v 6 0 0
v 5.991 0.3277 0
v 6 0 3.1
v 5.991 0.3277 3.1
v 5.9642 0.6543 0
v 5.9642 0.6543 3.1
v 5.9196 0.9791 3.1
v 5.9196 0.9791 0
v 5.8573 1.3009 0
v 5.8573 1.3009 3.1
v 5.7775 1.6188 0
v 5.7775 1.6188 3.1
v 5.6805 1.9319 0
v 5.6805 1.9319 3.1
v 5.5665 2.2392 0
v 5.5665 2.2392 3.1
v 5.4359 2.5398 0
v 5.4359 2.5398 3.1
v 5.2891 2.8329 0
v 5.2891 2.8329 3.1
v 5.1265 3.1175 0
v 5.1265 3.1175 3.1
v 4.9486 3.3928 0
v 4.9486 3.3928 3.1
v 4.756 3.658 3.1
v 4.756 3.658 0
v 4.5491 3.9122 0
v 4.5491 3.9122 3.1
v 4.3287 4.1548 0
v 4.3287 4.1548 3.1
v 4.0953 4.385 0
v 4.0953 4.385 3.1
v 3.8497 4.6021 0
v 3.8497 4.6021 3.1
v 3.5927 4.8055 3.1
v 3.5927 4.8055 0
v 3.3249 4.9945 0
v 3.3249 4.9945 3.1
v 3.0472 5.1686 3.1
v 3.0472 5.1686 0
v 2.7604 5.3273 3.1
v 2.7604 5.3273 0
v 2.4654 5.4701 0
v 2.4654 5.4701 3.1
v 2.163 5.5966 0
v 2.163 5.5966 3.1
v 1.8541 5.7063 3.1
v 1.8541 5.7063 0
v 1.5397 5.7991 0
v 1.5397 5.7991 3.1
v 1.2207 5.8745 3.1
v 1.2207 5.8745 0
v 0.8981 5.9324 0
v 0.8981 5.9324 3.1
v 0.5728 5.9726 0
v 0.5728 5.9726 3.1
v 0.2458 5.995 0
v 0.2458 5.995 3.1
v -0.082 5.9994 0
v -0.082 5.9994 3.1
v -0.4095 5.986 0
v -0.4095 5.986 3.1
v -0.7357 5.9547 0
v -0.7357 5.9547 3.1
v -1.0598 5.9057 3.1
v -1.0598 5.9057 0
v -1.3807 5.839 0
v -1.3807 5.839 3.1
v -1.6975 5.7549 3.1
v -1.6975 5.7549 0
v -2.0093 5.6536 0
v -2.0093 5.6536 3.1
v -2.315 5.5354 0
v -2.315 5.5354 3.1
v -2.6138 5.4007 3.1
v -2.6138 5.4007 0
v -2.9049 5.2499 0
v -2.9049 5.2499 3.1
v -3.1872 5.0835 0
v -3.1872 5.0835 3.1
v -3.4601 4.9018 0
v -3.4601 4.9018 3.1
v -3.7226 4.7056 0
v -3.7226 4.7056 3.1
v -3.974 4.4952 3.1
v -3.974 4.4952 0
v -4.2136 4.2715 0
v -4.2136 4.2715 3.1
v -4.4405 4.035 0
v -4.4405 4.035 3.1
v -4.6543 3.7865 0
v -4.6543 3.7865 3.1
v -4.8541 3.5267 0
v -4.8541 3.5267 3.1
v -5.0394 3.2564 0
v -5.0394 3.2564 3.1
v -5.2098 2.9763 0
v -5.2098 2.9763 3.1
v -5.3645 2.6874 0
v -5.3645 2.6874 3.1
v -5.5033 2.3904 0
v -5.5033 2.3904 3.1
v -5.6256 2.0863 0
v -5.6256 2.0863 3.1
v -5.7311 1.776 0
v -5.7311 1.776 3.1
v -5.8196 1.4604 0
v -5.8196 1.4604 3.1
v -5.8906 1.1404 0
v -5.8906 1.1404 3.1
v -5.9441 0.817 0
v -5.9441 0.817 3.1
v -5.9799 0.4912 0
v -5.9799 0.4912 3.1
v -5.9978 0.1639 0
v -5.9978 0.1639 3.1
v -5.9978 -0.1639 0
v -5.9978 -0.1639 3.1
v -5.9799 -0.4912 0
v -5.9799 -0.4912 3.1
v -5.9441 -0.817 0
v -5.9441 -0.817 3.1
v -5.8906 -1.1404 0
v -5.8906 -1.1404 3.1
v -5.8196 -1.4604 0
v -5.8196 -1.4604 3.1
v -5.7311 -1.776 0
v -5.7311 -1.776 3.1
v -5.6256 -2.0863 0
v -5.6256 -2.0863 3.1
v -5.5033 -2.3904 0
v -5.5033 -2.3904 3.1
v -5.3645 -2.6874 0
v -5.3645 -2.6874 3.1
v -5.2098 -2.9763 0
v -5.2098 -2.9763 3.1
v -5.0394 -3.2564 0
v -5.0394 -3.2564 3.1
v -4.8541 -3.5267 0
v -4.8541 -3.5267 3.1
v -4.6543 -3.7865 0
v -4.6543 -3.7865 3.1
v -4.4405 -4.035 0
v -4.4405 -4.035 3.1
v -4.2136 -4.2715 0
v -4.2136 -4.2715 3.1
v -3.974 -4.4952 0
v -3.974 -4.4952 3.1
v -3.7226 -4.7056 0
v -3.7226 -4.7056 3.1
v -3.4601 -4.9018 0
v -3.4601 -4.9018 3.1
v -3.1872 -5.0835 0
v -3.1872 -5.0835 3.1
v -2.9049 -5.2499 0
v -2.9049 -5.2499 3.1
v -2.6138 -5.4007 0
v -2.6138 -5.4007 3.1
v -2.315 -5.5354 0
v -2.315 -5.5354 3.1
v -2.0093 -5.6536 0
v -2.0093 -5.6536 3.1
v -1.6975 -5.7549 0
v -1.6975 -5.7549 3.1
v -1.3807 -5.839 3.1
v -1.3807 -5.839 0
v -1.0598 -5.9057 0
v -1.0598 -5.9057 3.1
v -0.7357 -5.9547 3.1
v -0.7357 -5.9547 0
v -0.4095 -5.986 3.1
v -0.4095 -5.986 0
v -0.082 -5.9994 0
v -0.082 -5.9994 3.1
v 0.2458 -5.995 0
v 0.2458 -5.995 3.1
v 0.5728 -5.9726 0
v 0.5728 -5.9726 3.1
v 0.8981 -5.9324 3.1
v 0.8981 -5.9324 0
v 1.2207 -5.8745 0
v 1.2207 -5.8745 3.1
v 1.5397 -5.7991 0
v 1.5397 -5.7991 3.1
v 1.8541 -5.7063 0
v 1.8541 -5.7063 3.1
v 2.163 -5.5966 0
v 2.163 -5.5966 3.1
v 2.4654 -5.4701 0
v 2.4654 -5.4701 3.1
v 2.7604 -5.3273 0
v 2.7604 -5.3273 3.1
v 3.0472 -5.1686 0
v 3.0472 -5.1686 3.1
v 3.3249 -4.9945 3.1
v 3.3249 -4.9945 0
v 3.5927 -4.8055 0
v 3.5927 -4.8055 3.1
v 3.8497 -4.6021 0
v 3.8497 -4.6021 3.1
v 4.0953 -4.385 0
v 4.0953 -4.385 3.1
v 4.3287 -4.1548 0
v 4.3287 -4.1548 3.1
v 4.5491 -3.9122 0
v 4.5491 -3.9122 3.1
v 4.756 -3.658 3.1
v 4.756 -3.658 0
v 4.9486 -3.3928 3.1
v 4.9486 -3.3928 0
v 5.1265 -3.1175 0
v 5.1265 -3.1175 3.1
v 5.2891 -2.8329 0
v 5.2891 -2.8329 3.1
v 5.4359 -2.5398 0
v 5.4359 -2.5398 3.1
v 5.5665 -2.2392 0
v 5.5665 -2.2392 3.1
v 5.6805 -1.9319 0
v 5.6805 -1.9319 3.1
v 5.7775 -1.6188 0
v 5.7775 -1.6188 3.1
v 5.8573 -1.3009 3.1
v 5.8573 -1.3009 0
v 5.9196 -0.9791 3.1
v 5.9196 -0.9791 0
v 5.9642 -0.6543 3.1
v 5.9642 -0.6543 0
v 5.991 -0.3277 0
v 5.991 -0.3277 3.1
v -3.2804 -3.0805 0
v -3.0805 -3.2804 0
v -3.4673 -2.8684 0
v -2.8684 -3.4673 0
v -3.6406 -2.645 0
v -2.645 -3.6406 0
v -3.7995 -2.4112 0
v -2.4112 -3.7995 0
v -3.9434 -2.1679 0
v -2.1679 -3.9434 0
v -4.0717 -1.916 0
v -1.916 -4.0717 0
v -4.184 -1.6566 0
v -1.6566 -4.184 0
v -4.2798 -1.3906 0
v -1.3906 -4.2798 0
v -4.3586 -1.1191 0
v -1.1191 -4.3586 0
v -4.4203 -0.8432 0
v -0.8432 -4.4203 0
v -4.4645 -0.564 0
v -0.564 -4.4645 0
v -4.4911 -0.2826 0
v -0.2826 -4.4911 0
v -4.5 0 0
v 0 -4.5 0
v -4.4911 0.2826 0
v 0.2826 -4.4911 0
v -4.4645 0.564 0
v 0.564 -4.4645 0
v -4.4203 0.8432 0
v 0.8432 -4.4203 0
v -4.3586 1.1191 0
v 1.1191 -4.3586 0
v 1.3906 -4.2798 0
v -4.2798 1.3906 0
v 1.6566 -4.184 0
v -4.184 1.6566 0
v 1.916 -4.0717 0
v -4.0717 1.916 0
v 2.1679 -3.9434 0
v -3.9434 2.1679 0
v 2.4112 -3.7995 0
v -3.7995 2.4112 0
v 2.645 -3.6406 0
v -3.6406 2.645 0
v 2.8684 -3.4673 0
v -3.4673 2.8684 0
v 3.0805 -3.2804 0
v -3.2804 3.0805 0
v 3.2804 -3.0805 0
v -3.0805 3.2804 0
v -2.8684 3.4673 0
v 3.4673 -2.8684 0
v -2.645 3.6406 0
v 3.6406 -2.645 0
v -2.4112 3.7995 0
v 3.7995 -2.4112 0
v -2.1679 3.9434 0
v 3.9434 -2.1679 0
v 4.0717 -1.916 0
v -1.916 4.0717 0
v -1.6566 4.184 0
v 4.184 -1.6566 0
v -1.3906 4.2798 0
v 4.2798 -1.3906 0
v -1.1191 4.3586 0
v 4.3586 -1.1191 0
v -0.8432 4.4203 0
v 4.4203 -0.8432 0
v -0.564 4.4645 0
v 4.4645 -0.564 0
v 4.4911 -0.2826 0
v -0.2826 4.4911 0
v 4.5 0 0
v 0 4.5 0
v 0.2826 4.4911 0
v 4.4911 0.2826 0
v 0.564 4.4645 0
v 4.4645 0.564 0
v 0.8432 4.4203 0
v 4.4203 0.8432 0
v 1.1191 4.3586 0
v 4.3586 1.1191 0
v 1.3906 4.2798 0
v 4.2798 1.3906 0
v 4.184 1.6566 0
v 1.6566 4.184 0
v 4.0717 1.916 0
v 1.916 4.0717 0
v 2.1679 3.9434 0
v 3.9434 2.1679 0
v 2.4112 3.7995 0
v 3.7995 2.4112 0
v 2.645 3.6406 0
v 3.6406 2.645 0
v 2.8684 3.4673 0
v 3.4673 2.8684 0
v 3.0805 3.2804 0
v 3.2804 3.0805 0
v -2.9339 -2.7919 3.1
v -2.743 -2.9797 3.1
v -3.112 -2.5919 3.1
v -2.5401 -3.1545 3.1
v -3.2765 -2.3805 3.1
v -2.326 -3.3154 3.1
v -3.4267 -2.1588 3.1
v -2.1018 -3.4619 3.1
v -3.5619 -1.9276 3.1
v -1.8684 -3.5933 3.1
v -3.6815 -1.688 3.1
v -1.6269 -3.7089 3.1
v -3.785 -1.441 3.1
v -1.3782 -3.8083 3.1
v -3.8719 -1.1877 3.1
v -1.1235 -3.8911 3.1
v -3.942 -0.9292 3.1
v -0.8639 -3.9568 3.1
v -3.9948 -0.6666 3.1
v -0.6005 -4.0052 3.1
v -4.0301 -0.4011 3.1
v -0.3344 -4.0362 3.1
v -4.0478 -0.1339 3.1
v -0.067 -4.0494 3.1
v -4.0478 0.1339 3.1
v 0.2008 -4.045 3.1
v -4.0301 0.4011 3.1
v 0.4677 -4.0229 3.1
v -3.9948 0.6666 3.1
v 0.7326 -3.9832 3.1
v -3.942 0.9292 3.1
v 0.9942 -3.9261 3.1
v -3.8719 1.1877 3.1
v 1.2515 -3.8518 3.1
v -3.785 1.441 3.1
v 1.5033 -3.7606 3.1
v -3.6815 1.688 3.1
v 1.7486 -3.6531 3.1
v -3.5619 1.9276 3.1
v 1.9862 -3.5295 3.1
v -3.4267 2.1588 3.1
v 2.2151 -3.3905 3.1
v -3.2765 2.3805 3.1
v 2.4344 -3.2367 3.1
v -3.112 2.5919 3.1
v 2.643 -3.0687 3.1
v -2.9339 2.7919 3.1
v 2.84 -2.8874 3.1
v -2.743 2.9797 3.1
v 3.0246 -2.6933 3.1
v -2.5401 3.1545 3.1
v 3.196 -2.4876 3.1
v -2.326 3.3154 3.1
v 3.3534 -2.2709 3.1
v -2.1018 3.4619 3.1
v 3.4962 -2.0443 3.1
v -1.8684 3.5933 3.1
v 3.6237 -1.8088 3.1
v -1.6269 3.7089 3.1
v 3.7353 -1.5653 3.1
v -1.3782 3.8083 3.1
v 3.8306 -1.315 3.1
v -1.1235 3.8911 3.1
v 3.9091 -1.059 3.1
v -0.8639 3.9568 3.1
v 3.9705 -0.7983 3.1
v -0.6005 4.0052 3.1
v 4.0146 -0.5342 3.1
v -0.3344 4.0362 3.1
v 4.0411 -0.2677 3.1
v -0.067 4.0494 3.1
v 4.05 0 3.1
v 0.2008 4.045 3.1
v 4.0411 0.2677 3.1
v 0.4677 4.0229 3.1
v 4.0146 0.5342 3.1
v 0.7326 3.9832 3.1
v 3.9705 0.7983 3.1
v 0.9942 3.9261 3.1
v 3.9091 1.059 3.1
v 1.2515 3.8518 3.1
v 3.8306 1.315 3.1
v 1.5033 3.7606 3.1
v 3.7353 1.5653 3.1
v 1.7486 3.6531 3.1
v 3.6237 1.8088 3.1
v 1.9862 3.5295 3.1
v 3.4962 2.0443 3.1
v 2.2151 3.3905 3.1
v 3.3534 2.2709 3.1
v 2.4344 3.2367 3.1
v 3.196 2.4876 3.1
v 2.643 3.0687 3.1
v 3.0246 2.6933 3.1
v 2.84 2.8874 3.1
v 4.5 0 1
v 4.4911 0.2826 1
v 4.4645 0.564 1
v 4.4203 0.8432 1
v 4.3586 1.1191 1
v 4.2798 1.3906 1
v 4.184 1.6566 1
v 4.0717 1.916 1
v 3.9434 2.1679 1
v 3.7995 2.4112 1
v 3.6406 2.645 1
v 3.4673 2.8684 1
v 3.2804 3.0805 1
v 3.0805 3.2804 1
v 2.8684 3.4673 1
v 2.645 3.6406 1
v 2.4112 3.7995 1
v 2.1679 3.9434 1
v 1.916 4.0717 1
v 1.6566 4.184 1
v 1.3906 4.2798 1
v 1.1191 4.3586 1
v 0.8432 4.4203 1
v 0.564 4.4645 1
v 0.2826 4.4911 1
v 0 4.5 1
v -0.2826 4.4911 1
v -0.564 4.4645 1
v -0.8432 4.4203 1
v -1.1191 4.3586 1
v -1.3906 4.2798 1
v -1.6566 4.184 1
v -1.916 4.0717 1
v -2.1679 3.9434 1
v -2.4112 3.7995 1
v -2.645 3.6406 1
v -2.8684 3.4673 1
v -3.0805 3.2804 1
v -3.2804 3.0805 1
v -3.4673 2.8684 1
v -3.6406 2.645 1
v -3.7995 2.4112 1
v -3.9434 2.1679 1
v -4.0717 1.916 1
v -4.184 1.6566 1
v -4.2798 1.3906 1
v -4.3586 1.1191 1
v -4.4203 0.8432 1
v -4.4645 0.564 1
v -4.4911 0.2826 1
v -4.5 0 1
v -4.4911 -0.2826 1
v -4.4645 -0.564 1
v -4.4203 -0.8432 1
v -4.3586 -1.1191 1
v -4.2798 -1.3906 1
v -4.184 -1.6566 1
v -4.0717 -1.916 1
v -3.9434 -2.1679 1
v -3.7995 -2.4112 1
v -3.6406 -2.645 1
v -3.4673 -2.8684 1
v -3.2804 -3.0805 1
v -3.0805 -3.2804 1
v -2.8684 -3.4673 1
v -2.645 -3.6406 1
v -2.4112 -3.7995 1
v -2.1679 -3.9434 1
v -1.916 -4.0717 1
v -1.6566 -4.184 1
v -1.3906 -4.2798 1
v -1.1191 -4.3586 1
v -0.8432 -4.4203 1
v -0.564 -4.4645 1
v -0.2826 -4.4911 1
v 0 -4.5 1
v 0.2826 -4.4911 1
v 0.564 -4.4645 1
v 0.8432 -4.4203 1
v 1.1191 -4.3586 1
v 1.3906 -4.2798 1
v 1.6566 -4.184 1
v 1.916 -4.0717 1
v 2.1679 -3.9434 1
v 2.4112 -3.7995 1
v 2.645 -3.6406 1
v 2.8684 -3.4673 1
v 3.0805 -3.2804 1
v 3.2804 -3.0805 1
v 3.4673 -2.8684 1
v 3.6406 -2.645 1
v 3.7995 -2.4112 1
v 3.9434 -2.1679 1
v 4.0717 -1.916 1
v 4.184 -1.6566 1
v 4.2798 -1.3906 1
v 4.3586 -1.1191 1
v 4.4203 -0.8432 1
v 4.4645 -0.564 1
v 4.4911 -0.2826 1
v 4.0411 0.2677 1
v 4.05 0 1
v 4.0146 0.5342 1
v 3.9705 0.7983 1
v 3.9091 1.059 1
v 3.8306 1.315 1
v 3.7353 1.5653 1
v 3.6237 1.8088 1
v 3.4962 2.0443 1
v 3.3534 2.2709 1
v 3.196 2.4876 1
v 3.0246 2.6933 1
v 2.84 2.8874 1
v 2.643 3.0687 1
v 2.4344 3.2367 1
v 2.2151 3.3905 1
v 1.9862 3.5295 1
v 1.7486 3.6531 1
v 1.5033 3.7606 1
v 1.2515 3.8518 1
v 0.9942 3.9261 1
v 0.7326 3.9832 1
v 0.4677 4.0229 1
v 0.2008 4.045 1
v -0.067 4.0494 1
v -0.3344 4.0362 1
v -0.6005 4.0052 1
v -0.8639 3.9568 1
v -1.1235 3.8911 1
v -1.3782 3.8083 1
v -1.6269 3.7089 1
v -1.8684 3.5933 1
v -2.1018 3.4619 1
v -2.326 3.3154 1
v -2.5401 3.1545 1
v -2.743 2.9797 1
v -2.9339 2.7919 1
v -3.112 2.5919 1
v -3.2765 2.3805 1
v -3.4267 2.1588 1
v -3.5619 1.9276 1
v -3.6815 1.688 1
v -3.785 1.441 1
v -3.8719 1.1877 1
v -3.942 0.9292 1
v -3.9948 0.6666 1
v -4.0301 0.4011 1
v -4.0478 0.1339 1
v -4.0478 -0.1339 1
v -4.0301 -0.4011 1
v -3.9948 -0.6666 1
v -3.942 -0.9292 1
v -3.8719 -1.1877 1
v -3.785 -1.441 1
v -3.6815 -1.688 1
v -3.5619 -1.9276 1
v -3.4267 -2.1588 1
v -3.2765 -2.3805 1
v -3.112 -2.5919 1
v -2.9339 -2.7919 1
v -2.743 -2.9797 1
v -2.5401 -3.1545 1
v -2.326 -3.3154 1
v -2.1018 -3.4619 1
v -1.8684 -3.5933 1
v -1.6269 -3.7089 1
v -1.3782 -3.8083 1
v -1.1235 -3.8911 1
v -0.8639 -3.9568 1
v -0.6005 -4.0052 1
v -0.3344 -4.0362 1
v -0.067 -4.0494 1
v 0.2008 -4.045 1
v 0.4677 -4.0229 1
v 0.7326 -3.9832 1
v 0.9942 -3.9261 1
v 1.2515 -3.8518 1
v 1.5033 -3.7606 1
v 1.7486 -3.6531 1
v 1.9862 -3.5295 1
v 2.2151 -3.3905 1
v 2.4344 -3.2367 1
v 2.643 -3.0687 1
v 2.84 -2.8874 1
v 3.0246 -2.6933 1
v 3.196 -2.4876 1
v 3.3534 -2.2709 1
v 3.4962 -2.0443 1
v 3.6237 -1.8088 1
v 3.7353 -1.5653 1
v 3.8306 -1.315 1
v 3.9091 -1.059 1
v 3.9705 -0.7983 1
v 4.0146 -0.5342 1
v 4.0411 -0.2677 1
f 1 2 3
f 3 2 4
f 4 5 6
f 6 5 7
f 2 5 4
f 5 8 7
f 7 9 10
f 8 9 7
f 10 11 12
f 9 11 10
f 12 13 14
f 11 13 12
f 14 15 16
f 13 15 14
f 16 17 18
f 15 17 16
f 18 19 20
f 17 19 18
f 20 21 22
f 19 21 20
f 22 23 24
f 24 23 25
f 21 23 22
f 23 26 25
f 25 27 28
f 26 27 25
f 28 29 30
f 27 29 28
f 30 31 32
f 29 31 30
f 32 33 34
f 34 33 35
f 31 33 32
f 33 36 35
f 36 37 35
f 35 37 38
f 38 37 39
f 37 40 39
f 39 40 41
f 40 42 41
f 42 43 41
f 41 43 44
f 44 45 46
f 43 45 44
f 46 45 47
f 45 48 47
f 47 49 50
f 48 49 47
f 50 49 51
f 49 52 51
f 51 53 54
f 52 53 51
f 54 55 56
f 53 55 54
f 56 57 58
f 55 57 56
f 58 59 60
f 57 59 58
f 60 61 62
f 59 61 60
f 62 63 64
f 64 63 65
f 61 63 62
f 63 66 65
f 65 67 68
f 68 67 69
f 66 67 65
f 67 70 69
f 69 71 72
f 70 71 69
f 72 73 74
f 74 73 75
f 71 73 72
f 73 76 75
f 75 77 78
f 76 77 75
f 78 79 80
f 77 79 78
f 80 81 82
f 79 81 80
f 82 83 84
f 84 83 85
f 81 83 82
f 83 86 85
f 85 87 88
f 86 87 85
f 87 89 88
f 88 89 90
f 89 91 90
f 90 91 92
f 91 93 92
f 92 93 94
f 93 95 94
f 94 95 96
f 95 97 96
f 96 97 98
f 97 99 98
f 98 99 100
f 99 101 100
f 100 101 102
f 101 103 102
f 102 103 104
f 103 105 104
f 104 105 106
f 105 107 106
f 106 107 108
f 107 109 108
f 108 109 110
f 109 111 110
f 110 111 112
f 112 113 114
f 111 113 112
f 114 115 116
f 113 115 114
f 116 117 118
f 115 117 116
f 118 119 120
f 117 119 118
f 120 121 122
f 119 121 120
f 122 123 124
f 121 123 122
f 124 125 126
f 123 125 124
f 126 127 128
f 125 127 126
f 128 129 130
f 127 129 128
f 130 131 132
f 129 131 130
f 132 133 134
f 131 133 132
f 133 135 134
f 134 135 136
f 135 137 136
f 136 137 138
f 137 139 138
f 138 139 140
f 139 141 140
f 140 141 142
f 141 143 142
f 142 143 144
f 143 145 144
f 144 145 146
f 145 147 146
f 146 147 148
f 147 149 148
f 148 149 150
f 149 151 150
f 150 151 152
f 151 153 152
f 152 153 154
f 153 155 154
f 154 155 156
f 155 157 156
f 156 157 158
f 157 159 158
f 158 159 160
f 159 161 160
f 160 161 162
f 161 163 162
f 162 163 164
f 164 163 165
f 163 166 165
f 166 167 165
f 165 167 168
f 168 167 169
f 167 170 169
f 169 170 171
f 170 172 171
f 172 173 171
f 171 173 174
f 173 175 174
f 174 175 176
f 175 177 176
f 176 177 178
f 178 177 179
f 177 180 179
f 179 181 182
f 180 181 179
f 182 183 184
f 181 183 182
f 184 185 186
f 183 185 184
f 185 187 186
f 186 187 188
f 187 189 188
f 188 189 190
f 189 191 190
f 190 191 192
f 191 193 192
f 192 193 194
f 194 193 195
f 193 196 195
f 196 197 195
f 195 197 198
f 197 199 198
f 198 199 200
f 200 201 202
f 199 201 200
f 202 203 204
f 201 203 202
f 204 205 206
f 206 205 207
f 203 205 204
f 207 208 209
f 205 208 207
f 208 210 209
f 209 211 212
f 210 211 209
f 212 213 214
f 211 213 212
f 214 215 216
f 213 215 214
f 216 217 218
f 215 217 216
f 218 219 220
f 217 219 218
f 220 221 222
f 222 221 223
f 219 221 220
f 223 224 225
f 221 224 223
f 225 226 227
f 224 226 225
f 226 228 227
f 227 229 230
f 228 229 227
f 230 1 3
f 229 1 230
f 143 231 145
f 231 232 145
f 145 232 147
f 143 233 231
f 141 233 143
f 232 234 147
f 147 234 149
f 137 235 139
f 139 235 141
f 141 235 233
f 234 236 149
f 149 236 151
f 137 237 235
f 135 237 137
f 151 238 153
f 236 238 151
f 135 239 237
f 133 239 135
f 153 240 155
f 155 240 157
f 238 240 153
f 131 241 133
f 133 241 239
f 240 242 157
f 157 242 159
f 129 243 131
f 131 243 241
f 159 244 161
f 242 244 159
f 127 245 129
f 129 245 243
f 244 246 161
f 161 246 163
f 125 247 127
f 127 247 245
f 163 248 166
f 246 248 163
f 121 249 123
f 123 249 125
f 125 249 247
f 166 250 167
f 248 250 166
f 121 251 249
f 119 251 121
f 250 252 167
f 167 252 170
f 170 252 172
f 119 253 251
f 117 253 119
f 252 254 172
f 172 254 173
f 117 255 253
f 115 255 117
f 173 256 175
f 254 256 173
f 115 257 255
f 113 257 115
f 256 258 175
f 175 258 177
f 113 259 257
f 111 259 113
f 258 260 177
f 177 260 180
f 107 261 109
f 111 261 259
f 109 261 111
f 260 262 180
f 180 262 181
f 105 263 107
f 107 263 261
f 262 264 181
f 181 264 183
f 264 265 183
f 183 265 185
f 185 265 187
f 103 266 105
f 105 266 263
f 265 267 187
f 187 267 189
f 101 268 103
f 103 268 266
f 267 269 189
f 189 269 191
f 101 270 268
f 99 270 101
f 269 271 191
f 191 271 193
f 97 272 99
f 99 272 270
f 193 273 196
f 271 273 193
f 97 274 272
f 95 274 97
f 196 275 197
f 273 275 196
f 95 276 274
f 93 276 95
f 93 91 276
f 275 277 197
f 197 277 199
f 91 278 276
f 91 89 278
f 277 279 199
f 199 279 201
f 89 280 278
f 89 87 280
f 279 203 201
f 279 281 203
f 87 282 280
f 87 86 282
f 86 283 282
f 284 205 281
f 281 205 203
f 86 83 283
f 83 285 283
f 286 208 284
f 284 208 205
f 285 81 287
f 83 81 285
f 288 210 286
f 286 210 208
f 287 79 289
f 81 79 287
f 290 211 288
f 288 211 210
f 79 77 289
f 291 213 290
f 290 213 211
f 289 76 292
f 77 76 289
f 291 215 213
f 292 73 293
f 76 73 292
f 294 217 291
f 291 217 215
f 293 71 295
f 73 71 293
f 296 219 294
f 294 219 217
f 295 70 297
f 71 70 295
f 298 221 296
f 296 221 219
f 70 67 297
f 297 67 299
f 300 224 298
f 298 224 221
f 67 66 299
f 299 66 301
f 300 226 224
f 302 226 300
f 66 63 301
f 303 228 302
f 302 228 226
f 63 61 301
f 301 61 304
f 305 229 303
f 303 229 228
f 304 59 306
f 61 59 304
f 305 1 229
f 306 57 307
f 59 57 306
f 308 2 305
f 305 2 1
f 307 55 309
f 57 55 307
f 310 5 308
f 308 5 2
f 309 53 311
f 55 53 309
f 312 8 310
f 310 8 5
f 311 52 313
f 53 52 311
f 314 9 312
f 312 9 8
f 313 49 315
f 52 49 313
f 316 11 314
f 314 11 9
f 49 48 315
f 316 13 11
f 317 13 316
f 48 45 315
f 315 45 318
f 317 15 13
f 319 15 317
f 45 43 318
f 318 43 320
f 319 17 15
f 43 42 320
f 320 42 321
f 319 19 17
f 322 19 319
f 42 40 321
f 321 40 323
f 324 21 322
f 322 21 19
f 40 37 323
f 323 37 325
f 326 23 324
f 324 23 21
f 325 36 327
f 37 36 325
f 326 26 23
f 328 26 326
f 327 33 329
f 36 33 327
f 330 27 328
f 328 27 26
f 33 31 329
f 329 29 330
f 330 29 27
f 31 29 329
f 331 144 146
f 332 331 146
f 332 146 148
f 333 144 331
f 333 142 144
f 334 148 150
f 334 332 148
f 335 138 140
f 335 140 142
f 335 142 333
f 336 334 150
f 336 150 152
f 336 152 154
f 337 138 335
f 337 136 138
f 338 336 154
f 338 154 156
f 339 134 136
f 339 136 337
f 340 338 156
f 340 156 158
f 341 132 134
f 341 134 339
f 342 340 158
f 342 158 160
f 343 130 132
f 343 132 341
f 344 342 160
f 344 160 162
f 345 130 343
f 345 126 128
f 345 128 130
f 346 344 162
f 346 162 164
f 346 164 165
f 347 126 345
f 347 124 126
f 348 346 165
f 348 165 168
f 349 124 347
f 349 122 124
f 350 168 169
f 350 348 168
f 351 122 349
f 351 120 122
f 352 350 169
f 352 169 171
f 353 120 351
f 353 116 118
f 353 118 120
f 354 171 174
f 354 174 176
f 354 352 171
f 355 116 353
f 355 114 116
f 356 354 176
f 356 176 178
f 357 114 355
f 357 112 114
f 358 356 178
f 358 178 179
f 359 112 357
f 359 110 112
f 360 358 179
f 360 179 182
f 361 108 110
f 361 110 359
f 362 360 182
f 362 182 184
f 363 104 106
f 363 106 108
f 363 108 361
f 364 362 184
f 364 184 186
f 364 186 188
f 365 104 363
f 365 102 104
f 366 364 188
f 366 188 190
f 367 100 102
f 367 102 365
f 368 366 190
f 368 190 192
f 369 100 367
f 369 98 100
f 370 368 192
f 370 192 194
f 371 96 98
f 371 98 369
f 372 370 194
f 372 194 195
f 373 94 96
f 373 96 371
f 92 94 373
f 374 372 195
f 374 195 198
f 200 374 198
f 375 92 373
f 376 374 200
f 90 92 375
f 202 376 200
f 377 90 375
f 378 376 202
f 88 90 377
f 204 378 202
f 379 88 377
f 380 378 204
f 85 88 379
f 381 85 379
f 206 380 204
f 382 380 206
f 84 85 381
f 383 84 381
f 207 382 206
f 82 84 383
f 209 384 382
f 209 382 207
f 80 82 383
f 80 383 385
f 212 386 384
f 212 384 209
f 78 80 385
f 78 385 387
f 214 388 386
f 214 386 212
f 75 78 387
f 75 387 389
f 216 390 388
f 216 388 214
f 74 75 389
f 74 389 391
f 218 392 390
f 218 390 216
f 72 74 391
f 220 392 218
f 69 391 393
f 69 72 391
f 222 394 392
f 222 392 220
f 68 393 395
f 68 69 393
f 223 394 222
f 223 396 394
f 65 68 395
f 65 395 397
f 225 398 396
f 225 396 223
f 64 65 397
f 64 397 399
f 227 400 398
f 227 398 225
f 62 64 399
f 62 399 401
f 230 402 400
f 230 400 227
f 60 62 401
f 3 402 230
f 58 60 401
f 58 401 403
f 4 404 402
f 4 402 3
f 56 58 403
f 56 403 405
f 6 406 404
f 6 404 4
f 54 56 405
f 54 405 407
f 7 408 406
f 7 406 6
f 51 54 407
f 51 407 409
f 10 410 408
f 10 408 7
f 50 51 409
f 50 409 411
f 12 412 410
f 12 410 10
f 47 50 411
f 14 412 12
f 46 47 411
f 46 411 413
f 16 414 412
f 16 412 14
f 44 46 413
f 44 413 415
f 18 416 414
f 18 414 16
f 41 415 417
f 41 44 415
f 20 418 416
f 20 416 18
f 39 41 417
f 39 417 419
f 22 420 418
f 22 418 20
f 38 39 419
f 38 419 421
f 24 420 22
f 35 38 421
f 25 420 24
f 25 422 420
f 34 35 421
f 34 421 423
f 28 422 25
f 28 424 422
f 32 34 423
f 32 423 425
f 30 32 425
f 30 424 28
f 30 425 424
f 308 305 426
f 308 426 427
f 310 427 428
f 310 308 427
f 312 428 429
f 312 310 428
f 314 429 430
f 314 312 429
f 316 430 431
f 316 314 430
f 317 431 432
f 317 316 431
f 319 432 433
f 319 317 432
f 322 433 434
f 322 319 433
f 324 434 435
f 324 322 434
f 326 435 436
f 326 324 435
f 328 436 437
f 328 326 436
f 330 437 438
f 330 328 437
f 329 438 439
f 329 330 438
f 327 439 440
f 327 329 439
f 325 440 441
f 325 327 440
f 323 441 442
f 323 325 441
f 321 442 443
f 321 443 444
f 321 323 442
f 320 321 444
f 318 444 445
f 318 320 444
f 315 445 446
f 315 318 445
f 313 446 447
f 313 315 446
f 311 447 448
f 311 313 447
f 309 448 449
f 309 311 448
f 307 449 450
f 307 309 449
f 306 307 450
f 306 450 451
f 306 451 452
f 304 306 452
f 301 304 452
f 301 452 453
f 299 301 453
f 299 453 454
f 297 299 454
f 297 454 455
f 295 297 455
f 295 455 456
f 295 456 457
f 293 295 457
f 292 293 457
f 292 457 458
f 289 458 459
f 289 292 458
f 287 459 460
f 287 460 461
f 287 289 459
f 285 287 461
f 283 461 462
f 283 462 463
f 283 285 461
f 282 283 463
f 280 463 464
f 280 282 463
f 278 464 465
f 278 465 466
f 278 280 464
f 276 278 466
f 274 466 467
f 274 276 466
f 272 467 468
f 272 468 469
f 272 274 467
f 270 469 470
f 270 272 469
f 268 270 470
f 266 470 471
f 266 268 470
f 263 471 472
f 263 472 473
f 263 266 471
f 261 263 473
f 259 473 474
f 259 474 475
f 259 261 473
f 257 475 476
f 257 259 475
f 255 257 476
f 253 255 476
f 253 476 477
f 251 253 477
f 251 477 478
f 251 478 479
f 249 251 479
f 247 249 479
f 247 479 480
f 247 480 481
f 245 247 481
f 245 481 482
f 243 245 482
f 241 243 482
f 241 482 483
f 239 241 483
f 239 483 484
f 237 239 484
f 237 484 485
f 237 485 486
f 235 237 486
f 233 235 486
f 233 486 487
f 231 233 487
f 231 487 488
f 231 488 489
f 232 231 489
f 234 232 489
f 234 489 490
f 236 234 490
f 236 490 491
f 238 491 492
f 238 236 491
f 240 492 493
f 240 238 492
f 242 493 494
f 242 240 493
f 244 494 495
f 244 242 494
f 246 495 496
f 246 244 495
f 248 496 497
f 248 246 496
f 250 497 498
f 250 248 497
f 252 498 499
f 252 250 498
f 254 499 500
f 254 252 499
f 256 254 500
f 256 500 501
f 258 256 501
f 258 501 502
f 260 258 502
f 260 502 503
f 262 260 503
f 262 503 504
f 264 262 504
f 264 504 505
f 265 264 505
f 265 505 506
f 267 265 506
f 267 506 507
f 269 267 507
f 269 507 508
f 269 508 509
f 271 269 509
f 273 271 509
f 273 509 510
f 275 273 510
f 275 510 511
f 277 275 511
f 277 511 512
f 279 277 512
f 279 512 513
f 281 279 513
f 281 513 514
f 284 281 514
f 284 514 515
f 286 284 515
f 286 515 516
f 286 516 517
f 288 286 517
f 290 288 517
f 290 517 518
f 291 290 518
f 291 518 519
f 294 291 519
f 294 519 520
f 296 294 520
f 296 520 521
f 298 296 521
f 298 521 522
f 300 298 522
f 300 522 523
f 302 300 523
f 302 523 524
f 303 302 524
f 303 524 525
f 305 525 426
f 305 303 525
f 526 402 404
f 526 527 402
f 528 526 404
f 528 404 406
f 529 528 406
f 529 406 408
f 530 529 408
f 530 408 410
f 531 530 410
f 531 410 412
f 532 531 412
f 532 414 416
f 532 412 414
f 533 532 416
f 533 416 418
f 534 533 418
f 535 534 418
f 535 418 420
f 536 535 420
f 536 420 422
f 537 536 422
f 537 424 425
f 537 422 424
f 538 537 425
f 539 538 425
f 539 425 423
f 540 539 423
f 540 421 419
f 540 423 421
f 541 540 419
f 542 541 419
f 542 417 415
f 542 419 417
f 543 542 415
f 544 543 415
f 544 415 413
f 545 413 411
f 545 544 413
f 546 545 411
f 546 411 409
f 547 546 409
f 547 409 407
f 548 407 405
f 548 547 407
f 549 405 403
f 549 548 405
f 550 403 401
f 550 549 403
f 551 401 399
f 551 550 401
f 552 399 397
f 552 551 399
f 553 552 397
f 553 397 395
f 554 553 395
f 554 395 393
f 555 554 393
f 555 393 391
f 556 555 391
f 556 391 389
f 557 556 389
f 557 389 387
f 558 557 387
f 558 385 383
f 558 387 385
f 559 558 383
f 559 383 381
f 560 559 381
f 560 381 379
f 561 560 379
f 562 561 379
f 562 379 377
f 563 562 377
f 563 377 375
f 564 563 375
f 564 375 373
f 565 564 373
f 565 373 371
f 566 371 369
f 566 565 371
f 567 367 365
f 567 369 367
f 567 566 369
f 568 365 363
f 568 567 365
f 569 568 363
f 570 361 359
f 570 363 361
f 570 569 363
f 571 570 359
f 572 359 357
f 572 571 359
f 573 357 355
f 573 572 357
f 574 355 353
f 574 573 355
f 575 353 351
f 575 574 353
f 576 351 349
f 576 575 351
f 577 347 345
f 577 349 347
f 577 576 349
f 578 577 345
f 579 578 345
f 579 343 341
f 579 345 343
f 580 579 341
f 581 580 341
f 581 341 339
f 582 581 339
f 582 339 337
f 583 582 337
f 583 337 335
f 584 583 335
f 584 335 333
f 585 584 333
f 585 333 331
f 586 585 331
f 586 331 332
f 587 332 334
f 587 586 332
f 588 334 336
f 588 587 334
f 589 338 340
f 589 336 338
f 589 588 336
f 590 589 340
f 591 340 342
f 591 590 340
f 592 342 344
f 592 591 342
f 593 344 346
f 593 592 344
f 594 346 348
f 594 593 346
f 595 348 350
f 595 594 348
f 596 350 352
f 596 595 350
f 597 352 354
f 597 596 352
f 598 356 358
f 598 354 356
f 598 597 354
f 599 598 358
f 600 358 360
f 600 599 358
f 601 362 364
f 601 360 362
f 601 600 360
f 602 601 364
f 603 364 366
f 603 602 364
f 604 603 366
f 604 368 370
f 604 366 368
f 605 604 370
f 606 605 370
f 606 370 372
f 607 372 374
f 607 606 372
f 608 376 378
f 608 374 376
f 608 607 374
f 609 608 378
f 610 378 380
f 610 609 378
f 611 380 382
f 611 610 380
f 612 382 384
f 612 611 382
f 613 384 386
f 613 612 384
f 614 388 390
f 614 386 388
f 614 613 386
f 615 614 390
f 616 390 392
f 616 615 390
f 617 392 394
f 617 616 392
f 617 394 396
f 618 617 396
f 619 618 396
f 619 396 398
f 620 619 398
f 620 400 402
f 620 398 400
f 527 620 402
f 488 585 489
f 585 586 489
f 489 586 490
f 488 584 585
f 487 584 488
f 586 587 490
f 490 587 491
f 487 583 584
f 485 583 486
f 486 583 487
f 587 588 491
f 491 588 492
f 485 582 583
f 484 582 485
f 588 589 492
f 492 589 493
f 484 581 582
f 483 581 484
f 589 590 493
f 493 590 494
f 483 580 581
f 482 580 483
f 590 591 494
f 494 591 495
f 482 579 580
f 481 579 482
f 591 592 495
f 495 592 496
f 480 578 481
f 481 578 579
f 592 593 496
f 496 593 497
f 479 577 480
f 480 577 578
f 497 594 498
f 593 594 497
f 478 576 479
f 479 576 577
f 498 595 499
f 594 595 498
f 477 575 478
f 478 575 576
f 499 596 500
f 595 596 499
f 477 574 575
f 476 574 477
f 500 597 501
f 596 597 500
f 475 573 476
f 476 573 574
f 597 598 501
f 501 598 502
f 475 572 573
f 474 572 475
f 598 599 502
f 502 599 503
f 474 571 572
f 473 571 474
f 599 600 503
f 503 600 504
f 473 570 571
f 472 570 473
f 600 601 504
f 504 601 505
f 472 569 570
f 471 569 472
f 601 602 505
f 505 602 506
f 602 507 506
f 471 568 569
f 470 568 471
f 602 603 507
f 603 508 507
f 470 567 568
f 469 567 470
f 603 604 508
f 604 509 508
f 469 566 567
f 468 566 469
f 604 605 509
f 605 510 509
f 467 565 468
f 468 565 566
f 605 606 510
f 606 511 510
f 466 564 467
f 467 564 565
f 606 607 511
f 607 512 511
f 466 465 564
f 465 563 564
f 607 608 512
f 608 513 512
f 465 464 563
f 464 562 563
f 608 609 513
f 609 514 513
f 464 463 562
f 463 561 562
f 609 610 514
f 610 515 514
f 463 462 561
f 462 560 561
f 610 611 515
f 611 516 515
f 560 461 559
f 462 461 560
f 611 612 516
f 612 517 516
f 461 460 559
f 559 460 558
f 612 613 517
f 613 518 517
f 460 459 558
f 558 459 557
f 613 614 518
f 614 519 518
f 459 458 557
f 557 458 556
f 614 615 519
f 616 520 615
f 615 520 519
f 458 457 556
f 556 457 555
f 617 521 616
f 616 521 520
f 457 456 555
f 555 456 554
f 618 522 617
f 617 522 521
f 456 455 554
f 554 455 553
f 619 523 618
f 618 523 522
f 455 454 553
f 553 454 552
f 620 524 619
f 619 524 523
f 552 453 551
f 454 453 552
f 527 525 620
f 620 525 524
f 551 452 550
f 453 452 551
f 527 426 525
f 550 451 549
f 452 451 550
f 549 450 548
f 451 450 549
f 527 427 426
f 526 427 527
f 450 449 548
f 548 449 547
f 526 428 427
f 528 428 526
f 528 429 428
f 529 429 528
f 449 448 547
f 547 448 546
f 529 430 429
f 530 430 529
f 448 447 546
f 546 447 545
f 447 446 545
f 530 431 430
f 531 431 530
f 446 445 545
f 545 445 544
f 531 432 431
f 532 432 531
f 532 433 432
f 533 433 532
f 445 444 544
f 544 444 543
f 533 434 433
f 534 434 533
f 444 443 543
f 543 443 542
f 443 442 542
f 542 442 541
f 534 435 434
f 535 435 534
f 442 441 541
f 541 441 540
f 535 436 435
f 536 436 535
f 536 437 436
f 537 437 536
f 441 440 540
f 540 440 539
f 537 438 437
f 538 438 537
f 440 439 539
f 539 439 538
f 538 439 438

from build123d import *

# Parameters (mm, degrees)
SKETCH001_R     = 6
PAD_DEPTH       = 3.1
SKETCH_R        = 4.05
POCKET_DEPTH    = 3.101
SKETCH002_R     = 4.5
POCKET001_DEPTH = 1


with BuildPart() as part:
    # Sketch001 → Pad (new body)
    with BuildSketch(Plane.XY):
        Circle(SKETCH001_R)
    extrude(amount=PAD_DEPTH)

    # Sketch → Pocket (cut, through all)
    with BuildSketch(Plane.XY):
        Circle(SKETCH_R)
    extrude(amount=POCKET_DEPTH, mode=Mode.SUBTRACT)

    # Sketch002 → Pocket001 (cut)
    with BuildSketch(Plane.XY):
        Circle(SKETCH002_R)
    extrude(amount=POCKET001_DEPTH, mode=Mode.SUBTRACT)


solid = part.part
